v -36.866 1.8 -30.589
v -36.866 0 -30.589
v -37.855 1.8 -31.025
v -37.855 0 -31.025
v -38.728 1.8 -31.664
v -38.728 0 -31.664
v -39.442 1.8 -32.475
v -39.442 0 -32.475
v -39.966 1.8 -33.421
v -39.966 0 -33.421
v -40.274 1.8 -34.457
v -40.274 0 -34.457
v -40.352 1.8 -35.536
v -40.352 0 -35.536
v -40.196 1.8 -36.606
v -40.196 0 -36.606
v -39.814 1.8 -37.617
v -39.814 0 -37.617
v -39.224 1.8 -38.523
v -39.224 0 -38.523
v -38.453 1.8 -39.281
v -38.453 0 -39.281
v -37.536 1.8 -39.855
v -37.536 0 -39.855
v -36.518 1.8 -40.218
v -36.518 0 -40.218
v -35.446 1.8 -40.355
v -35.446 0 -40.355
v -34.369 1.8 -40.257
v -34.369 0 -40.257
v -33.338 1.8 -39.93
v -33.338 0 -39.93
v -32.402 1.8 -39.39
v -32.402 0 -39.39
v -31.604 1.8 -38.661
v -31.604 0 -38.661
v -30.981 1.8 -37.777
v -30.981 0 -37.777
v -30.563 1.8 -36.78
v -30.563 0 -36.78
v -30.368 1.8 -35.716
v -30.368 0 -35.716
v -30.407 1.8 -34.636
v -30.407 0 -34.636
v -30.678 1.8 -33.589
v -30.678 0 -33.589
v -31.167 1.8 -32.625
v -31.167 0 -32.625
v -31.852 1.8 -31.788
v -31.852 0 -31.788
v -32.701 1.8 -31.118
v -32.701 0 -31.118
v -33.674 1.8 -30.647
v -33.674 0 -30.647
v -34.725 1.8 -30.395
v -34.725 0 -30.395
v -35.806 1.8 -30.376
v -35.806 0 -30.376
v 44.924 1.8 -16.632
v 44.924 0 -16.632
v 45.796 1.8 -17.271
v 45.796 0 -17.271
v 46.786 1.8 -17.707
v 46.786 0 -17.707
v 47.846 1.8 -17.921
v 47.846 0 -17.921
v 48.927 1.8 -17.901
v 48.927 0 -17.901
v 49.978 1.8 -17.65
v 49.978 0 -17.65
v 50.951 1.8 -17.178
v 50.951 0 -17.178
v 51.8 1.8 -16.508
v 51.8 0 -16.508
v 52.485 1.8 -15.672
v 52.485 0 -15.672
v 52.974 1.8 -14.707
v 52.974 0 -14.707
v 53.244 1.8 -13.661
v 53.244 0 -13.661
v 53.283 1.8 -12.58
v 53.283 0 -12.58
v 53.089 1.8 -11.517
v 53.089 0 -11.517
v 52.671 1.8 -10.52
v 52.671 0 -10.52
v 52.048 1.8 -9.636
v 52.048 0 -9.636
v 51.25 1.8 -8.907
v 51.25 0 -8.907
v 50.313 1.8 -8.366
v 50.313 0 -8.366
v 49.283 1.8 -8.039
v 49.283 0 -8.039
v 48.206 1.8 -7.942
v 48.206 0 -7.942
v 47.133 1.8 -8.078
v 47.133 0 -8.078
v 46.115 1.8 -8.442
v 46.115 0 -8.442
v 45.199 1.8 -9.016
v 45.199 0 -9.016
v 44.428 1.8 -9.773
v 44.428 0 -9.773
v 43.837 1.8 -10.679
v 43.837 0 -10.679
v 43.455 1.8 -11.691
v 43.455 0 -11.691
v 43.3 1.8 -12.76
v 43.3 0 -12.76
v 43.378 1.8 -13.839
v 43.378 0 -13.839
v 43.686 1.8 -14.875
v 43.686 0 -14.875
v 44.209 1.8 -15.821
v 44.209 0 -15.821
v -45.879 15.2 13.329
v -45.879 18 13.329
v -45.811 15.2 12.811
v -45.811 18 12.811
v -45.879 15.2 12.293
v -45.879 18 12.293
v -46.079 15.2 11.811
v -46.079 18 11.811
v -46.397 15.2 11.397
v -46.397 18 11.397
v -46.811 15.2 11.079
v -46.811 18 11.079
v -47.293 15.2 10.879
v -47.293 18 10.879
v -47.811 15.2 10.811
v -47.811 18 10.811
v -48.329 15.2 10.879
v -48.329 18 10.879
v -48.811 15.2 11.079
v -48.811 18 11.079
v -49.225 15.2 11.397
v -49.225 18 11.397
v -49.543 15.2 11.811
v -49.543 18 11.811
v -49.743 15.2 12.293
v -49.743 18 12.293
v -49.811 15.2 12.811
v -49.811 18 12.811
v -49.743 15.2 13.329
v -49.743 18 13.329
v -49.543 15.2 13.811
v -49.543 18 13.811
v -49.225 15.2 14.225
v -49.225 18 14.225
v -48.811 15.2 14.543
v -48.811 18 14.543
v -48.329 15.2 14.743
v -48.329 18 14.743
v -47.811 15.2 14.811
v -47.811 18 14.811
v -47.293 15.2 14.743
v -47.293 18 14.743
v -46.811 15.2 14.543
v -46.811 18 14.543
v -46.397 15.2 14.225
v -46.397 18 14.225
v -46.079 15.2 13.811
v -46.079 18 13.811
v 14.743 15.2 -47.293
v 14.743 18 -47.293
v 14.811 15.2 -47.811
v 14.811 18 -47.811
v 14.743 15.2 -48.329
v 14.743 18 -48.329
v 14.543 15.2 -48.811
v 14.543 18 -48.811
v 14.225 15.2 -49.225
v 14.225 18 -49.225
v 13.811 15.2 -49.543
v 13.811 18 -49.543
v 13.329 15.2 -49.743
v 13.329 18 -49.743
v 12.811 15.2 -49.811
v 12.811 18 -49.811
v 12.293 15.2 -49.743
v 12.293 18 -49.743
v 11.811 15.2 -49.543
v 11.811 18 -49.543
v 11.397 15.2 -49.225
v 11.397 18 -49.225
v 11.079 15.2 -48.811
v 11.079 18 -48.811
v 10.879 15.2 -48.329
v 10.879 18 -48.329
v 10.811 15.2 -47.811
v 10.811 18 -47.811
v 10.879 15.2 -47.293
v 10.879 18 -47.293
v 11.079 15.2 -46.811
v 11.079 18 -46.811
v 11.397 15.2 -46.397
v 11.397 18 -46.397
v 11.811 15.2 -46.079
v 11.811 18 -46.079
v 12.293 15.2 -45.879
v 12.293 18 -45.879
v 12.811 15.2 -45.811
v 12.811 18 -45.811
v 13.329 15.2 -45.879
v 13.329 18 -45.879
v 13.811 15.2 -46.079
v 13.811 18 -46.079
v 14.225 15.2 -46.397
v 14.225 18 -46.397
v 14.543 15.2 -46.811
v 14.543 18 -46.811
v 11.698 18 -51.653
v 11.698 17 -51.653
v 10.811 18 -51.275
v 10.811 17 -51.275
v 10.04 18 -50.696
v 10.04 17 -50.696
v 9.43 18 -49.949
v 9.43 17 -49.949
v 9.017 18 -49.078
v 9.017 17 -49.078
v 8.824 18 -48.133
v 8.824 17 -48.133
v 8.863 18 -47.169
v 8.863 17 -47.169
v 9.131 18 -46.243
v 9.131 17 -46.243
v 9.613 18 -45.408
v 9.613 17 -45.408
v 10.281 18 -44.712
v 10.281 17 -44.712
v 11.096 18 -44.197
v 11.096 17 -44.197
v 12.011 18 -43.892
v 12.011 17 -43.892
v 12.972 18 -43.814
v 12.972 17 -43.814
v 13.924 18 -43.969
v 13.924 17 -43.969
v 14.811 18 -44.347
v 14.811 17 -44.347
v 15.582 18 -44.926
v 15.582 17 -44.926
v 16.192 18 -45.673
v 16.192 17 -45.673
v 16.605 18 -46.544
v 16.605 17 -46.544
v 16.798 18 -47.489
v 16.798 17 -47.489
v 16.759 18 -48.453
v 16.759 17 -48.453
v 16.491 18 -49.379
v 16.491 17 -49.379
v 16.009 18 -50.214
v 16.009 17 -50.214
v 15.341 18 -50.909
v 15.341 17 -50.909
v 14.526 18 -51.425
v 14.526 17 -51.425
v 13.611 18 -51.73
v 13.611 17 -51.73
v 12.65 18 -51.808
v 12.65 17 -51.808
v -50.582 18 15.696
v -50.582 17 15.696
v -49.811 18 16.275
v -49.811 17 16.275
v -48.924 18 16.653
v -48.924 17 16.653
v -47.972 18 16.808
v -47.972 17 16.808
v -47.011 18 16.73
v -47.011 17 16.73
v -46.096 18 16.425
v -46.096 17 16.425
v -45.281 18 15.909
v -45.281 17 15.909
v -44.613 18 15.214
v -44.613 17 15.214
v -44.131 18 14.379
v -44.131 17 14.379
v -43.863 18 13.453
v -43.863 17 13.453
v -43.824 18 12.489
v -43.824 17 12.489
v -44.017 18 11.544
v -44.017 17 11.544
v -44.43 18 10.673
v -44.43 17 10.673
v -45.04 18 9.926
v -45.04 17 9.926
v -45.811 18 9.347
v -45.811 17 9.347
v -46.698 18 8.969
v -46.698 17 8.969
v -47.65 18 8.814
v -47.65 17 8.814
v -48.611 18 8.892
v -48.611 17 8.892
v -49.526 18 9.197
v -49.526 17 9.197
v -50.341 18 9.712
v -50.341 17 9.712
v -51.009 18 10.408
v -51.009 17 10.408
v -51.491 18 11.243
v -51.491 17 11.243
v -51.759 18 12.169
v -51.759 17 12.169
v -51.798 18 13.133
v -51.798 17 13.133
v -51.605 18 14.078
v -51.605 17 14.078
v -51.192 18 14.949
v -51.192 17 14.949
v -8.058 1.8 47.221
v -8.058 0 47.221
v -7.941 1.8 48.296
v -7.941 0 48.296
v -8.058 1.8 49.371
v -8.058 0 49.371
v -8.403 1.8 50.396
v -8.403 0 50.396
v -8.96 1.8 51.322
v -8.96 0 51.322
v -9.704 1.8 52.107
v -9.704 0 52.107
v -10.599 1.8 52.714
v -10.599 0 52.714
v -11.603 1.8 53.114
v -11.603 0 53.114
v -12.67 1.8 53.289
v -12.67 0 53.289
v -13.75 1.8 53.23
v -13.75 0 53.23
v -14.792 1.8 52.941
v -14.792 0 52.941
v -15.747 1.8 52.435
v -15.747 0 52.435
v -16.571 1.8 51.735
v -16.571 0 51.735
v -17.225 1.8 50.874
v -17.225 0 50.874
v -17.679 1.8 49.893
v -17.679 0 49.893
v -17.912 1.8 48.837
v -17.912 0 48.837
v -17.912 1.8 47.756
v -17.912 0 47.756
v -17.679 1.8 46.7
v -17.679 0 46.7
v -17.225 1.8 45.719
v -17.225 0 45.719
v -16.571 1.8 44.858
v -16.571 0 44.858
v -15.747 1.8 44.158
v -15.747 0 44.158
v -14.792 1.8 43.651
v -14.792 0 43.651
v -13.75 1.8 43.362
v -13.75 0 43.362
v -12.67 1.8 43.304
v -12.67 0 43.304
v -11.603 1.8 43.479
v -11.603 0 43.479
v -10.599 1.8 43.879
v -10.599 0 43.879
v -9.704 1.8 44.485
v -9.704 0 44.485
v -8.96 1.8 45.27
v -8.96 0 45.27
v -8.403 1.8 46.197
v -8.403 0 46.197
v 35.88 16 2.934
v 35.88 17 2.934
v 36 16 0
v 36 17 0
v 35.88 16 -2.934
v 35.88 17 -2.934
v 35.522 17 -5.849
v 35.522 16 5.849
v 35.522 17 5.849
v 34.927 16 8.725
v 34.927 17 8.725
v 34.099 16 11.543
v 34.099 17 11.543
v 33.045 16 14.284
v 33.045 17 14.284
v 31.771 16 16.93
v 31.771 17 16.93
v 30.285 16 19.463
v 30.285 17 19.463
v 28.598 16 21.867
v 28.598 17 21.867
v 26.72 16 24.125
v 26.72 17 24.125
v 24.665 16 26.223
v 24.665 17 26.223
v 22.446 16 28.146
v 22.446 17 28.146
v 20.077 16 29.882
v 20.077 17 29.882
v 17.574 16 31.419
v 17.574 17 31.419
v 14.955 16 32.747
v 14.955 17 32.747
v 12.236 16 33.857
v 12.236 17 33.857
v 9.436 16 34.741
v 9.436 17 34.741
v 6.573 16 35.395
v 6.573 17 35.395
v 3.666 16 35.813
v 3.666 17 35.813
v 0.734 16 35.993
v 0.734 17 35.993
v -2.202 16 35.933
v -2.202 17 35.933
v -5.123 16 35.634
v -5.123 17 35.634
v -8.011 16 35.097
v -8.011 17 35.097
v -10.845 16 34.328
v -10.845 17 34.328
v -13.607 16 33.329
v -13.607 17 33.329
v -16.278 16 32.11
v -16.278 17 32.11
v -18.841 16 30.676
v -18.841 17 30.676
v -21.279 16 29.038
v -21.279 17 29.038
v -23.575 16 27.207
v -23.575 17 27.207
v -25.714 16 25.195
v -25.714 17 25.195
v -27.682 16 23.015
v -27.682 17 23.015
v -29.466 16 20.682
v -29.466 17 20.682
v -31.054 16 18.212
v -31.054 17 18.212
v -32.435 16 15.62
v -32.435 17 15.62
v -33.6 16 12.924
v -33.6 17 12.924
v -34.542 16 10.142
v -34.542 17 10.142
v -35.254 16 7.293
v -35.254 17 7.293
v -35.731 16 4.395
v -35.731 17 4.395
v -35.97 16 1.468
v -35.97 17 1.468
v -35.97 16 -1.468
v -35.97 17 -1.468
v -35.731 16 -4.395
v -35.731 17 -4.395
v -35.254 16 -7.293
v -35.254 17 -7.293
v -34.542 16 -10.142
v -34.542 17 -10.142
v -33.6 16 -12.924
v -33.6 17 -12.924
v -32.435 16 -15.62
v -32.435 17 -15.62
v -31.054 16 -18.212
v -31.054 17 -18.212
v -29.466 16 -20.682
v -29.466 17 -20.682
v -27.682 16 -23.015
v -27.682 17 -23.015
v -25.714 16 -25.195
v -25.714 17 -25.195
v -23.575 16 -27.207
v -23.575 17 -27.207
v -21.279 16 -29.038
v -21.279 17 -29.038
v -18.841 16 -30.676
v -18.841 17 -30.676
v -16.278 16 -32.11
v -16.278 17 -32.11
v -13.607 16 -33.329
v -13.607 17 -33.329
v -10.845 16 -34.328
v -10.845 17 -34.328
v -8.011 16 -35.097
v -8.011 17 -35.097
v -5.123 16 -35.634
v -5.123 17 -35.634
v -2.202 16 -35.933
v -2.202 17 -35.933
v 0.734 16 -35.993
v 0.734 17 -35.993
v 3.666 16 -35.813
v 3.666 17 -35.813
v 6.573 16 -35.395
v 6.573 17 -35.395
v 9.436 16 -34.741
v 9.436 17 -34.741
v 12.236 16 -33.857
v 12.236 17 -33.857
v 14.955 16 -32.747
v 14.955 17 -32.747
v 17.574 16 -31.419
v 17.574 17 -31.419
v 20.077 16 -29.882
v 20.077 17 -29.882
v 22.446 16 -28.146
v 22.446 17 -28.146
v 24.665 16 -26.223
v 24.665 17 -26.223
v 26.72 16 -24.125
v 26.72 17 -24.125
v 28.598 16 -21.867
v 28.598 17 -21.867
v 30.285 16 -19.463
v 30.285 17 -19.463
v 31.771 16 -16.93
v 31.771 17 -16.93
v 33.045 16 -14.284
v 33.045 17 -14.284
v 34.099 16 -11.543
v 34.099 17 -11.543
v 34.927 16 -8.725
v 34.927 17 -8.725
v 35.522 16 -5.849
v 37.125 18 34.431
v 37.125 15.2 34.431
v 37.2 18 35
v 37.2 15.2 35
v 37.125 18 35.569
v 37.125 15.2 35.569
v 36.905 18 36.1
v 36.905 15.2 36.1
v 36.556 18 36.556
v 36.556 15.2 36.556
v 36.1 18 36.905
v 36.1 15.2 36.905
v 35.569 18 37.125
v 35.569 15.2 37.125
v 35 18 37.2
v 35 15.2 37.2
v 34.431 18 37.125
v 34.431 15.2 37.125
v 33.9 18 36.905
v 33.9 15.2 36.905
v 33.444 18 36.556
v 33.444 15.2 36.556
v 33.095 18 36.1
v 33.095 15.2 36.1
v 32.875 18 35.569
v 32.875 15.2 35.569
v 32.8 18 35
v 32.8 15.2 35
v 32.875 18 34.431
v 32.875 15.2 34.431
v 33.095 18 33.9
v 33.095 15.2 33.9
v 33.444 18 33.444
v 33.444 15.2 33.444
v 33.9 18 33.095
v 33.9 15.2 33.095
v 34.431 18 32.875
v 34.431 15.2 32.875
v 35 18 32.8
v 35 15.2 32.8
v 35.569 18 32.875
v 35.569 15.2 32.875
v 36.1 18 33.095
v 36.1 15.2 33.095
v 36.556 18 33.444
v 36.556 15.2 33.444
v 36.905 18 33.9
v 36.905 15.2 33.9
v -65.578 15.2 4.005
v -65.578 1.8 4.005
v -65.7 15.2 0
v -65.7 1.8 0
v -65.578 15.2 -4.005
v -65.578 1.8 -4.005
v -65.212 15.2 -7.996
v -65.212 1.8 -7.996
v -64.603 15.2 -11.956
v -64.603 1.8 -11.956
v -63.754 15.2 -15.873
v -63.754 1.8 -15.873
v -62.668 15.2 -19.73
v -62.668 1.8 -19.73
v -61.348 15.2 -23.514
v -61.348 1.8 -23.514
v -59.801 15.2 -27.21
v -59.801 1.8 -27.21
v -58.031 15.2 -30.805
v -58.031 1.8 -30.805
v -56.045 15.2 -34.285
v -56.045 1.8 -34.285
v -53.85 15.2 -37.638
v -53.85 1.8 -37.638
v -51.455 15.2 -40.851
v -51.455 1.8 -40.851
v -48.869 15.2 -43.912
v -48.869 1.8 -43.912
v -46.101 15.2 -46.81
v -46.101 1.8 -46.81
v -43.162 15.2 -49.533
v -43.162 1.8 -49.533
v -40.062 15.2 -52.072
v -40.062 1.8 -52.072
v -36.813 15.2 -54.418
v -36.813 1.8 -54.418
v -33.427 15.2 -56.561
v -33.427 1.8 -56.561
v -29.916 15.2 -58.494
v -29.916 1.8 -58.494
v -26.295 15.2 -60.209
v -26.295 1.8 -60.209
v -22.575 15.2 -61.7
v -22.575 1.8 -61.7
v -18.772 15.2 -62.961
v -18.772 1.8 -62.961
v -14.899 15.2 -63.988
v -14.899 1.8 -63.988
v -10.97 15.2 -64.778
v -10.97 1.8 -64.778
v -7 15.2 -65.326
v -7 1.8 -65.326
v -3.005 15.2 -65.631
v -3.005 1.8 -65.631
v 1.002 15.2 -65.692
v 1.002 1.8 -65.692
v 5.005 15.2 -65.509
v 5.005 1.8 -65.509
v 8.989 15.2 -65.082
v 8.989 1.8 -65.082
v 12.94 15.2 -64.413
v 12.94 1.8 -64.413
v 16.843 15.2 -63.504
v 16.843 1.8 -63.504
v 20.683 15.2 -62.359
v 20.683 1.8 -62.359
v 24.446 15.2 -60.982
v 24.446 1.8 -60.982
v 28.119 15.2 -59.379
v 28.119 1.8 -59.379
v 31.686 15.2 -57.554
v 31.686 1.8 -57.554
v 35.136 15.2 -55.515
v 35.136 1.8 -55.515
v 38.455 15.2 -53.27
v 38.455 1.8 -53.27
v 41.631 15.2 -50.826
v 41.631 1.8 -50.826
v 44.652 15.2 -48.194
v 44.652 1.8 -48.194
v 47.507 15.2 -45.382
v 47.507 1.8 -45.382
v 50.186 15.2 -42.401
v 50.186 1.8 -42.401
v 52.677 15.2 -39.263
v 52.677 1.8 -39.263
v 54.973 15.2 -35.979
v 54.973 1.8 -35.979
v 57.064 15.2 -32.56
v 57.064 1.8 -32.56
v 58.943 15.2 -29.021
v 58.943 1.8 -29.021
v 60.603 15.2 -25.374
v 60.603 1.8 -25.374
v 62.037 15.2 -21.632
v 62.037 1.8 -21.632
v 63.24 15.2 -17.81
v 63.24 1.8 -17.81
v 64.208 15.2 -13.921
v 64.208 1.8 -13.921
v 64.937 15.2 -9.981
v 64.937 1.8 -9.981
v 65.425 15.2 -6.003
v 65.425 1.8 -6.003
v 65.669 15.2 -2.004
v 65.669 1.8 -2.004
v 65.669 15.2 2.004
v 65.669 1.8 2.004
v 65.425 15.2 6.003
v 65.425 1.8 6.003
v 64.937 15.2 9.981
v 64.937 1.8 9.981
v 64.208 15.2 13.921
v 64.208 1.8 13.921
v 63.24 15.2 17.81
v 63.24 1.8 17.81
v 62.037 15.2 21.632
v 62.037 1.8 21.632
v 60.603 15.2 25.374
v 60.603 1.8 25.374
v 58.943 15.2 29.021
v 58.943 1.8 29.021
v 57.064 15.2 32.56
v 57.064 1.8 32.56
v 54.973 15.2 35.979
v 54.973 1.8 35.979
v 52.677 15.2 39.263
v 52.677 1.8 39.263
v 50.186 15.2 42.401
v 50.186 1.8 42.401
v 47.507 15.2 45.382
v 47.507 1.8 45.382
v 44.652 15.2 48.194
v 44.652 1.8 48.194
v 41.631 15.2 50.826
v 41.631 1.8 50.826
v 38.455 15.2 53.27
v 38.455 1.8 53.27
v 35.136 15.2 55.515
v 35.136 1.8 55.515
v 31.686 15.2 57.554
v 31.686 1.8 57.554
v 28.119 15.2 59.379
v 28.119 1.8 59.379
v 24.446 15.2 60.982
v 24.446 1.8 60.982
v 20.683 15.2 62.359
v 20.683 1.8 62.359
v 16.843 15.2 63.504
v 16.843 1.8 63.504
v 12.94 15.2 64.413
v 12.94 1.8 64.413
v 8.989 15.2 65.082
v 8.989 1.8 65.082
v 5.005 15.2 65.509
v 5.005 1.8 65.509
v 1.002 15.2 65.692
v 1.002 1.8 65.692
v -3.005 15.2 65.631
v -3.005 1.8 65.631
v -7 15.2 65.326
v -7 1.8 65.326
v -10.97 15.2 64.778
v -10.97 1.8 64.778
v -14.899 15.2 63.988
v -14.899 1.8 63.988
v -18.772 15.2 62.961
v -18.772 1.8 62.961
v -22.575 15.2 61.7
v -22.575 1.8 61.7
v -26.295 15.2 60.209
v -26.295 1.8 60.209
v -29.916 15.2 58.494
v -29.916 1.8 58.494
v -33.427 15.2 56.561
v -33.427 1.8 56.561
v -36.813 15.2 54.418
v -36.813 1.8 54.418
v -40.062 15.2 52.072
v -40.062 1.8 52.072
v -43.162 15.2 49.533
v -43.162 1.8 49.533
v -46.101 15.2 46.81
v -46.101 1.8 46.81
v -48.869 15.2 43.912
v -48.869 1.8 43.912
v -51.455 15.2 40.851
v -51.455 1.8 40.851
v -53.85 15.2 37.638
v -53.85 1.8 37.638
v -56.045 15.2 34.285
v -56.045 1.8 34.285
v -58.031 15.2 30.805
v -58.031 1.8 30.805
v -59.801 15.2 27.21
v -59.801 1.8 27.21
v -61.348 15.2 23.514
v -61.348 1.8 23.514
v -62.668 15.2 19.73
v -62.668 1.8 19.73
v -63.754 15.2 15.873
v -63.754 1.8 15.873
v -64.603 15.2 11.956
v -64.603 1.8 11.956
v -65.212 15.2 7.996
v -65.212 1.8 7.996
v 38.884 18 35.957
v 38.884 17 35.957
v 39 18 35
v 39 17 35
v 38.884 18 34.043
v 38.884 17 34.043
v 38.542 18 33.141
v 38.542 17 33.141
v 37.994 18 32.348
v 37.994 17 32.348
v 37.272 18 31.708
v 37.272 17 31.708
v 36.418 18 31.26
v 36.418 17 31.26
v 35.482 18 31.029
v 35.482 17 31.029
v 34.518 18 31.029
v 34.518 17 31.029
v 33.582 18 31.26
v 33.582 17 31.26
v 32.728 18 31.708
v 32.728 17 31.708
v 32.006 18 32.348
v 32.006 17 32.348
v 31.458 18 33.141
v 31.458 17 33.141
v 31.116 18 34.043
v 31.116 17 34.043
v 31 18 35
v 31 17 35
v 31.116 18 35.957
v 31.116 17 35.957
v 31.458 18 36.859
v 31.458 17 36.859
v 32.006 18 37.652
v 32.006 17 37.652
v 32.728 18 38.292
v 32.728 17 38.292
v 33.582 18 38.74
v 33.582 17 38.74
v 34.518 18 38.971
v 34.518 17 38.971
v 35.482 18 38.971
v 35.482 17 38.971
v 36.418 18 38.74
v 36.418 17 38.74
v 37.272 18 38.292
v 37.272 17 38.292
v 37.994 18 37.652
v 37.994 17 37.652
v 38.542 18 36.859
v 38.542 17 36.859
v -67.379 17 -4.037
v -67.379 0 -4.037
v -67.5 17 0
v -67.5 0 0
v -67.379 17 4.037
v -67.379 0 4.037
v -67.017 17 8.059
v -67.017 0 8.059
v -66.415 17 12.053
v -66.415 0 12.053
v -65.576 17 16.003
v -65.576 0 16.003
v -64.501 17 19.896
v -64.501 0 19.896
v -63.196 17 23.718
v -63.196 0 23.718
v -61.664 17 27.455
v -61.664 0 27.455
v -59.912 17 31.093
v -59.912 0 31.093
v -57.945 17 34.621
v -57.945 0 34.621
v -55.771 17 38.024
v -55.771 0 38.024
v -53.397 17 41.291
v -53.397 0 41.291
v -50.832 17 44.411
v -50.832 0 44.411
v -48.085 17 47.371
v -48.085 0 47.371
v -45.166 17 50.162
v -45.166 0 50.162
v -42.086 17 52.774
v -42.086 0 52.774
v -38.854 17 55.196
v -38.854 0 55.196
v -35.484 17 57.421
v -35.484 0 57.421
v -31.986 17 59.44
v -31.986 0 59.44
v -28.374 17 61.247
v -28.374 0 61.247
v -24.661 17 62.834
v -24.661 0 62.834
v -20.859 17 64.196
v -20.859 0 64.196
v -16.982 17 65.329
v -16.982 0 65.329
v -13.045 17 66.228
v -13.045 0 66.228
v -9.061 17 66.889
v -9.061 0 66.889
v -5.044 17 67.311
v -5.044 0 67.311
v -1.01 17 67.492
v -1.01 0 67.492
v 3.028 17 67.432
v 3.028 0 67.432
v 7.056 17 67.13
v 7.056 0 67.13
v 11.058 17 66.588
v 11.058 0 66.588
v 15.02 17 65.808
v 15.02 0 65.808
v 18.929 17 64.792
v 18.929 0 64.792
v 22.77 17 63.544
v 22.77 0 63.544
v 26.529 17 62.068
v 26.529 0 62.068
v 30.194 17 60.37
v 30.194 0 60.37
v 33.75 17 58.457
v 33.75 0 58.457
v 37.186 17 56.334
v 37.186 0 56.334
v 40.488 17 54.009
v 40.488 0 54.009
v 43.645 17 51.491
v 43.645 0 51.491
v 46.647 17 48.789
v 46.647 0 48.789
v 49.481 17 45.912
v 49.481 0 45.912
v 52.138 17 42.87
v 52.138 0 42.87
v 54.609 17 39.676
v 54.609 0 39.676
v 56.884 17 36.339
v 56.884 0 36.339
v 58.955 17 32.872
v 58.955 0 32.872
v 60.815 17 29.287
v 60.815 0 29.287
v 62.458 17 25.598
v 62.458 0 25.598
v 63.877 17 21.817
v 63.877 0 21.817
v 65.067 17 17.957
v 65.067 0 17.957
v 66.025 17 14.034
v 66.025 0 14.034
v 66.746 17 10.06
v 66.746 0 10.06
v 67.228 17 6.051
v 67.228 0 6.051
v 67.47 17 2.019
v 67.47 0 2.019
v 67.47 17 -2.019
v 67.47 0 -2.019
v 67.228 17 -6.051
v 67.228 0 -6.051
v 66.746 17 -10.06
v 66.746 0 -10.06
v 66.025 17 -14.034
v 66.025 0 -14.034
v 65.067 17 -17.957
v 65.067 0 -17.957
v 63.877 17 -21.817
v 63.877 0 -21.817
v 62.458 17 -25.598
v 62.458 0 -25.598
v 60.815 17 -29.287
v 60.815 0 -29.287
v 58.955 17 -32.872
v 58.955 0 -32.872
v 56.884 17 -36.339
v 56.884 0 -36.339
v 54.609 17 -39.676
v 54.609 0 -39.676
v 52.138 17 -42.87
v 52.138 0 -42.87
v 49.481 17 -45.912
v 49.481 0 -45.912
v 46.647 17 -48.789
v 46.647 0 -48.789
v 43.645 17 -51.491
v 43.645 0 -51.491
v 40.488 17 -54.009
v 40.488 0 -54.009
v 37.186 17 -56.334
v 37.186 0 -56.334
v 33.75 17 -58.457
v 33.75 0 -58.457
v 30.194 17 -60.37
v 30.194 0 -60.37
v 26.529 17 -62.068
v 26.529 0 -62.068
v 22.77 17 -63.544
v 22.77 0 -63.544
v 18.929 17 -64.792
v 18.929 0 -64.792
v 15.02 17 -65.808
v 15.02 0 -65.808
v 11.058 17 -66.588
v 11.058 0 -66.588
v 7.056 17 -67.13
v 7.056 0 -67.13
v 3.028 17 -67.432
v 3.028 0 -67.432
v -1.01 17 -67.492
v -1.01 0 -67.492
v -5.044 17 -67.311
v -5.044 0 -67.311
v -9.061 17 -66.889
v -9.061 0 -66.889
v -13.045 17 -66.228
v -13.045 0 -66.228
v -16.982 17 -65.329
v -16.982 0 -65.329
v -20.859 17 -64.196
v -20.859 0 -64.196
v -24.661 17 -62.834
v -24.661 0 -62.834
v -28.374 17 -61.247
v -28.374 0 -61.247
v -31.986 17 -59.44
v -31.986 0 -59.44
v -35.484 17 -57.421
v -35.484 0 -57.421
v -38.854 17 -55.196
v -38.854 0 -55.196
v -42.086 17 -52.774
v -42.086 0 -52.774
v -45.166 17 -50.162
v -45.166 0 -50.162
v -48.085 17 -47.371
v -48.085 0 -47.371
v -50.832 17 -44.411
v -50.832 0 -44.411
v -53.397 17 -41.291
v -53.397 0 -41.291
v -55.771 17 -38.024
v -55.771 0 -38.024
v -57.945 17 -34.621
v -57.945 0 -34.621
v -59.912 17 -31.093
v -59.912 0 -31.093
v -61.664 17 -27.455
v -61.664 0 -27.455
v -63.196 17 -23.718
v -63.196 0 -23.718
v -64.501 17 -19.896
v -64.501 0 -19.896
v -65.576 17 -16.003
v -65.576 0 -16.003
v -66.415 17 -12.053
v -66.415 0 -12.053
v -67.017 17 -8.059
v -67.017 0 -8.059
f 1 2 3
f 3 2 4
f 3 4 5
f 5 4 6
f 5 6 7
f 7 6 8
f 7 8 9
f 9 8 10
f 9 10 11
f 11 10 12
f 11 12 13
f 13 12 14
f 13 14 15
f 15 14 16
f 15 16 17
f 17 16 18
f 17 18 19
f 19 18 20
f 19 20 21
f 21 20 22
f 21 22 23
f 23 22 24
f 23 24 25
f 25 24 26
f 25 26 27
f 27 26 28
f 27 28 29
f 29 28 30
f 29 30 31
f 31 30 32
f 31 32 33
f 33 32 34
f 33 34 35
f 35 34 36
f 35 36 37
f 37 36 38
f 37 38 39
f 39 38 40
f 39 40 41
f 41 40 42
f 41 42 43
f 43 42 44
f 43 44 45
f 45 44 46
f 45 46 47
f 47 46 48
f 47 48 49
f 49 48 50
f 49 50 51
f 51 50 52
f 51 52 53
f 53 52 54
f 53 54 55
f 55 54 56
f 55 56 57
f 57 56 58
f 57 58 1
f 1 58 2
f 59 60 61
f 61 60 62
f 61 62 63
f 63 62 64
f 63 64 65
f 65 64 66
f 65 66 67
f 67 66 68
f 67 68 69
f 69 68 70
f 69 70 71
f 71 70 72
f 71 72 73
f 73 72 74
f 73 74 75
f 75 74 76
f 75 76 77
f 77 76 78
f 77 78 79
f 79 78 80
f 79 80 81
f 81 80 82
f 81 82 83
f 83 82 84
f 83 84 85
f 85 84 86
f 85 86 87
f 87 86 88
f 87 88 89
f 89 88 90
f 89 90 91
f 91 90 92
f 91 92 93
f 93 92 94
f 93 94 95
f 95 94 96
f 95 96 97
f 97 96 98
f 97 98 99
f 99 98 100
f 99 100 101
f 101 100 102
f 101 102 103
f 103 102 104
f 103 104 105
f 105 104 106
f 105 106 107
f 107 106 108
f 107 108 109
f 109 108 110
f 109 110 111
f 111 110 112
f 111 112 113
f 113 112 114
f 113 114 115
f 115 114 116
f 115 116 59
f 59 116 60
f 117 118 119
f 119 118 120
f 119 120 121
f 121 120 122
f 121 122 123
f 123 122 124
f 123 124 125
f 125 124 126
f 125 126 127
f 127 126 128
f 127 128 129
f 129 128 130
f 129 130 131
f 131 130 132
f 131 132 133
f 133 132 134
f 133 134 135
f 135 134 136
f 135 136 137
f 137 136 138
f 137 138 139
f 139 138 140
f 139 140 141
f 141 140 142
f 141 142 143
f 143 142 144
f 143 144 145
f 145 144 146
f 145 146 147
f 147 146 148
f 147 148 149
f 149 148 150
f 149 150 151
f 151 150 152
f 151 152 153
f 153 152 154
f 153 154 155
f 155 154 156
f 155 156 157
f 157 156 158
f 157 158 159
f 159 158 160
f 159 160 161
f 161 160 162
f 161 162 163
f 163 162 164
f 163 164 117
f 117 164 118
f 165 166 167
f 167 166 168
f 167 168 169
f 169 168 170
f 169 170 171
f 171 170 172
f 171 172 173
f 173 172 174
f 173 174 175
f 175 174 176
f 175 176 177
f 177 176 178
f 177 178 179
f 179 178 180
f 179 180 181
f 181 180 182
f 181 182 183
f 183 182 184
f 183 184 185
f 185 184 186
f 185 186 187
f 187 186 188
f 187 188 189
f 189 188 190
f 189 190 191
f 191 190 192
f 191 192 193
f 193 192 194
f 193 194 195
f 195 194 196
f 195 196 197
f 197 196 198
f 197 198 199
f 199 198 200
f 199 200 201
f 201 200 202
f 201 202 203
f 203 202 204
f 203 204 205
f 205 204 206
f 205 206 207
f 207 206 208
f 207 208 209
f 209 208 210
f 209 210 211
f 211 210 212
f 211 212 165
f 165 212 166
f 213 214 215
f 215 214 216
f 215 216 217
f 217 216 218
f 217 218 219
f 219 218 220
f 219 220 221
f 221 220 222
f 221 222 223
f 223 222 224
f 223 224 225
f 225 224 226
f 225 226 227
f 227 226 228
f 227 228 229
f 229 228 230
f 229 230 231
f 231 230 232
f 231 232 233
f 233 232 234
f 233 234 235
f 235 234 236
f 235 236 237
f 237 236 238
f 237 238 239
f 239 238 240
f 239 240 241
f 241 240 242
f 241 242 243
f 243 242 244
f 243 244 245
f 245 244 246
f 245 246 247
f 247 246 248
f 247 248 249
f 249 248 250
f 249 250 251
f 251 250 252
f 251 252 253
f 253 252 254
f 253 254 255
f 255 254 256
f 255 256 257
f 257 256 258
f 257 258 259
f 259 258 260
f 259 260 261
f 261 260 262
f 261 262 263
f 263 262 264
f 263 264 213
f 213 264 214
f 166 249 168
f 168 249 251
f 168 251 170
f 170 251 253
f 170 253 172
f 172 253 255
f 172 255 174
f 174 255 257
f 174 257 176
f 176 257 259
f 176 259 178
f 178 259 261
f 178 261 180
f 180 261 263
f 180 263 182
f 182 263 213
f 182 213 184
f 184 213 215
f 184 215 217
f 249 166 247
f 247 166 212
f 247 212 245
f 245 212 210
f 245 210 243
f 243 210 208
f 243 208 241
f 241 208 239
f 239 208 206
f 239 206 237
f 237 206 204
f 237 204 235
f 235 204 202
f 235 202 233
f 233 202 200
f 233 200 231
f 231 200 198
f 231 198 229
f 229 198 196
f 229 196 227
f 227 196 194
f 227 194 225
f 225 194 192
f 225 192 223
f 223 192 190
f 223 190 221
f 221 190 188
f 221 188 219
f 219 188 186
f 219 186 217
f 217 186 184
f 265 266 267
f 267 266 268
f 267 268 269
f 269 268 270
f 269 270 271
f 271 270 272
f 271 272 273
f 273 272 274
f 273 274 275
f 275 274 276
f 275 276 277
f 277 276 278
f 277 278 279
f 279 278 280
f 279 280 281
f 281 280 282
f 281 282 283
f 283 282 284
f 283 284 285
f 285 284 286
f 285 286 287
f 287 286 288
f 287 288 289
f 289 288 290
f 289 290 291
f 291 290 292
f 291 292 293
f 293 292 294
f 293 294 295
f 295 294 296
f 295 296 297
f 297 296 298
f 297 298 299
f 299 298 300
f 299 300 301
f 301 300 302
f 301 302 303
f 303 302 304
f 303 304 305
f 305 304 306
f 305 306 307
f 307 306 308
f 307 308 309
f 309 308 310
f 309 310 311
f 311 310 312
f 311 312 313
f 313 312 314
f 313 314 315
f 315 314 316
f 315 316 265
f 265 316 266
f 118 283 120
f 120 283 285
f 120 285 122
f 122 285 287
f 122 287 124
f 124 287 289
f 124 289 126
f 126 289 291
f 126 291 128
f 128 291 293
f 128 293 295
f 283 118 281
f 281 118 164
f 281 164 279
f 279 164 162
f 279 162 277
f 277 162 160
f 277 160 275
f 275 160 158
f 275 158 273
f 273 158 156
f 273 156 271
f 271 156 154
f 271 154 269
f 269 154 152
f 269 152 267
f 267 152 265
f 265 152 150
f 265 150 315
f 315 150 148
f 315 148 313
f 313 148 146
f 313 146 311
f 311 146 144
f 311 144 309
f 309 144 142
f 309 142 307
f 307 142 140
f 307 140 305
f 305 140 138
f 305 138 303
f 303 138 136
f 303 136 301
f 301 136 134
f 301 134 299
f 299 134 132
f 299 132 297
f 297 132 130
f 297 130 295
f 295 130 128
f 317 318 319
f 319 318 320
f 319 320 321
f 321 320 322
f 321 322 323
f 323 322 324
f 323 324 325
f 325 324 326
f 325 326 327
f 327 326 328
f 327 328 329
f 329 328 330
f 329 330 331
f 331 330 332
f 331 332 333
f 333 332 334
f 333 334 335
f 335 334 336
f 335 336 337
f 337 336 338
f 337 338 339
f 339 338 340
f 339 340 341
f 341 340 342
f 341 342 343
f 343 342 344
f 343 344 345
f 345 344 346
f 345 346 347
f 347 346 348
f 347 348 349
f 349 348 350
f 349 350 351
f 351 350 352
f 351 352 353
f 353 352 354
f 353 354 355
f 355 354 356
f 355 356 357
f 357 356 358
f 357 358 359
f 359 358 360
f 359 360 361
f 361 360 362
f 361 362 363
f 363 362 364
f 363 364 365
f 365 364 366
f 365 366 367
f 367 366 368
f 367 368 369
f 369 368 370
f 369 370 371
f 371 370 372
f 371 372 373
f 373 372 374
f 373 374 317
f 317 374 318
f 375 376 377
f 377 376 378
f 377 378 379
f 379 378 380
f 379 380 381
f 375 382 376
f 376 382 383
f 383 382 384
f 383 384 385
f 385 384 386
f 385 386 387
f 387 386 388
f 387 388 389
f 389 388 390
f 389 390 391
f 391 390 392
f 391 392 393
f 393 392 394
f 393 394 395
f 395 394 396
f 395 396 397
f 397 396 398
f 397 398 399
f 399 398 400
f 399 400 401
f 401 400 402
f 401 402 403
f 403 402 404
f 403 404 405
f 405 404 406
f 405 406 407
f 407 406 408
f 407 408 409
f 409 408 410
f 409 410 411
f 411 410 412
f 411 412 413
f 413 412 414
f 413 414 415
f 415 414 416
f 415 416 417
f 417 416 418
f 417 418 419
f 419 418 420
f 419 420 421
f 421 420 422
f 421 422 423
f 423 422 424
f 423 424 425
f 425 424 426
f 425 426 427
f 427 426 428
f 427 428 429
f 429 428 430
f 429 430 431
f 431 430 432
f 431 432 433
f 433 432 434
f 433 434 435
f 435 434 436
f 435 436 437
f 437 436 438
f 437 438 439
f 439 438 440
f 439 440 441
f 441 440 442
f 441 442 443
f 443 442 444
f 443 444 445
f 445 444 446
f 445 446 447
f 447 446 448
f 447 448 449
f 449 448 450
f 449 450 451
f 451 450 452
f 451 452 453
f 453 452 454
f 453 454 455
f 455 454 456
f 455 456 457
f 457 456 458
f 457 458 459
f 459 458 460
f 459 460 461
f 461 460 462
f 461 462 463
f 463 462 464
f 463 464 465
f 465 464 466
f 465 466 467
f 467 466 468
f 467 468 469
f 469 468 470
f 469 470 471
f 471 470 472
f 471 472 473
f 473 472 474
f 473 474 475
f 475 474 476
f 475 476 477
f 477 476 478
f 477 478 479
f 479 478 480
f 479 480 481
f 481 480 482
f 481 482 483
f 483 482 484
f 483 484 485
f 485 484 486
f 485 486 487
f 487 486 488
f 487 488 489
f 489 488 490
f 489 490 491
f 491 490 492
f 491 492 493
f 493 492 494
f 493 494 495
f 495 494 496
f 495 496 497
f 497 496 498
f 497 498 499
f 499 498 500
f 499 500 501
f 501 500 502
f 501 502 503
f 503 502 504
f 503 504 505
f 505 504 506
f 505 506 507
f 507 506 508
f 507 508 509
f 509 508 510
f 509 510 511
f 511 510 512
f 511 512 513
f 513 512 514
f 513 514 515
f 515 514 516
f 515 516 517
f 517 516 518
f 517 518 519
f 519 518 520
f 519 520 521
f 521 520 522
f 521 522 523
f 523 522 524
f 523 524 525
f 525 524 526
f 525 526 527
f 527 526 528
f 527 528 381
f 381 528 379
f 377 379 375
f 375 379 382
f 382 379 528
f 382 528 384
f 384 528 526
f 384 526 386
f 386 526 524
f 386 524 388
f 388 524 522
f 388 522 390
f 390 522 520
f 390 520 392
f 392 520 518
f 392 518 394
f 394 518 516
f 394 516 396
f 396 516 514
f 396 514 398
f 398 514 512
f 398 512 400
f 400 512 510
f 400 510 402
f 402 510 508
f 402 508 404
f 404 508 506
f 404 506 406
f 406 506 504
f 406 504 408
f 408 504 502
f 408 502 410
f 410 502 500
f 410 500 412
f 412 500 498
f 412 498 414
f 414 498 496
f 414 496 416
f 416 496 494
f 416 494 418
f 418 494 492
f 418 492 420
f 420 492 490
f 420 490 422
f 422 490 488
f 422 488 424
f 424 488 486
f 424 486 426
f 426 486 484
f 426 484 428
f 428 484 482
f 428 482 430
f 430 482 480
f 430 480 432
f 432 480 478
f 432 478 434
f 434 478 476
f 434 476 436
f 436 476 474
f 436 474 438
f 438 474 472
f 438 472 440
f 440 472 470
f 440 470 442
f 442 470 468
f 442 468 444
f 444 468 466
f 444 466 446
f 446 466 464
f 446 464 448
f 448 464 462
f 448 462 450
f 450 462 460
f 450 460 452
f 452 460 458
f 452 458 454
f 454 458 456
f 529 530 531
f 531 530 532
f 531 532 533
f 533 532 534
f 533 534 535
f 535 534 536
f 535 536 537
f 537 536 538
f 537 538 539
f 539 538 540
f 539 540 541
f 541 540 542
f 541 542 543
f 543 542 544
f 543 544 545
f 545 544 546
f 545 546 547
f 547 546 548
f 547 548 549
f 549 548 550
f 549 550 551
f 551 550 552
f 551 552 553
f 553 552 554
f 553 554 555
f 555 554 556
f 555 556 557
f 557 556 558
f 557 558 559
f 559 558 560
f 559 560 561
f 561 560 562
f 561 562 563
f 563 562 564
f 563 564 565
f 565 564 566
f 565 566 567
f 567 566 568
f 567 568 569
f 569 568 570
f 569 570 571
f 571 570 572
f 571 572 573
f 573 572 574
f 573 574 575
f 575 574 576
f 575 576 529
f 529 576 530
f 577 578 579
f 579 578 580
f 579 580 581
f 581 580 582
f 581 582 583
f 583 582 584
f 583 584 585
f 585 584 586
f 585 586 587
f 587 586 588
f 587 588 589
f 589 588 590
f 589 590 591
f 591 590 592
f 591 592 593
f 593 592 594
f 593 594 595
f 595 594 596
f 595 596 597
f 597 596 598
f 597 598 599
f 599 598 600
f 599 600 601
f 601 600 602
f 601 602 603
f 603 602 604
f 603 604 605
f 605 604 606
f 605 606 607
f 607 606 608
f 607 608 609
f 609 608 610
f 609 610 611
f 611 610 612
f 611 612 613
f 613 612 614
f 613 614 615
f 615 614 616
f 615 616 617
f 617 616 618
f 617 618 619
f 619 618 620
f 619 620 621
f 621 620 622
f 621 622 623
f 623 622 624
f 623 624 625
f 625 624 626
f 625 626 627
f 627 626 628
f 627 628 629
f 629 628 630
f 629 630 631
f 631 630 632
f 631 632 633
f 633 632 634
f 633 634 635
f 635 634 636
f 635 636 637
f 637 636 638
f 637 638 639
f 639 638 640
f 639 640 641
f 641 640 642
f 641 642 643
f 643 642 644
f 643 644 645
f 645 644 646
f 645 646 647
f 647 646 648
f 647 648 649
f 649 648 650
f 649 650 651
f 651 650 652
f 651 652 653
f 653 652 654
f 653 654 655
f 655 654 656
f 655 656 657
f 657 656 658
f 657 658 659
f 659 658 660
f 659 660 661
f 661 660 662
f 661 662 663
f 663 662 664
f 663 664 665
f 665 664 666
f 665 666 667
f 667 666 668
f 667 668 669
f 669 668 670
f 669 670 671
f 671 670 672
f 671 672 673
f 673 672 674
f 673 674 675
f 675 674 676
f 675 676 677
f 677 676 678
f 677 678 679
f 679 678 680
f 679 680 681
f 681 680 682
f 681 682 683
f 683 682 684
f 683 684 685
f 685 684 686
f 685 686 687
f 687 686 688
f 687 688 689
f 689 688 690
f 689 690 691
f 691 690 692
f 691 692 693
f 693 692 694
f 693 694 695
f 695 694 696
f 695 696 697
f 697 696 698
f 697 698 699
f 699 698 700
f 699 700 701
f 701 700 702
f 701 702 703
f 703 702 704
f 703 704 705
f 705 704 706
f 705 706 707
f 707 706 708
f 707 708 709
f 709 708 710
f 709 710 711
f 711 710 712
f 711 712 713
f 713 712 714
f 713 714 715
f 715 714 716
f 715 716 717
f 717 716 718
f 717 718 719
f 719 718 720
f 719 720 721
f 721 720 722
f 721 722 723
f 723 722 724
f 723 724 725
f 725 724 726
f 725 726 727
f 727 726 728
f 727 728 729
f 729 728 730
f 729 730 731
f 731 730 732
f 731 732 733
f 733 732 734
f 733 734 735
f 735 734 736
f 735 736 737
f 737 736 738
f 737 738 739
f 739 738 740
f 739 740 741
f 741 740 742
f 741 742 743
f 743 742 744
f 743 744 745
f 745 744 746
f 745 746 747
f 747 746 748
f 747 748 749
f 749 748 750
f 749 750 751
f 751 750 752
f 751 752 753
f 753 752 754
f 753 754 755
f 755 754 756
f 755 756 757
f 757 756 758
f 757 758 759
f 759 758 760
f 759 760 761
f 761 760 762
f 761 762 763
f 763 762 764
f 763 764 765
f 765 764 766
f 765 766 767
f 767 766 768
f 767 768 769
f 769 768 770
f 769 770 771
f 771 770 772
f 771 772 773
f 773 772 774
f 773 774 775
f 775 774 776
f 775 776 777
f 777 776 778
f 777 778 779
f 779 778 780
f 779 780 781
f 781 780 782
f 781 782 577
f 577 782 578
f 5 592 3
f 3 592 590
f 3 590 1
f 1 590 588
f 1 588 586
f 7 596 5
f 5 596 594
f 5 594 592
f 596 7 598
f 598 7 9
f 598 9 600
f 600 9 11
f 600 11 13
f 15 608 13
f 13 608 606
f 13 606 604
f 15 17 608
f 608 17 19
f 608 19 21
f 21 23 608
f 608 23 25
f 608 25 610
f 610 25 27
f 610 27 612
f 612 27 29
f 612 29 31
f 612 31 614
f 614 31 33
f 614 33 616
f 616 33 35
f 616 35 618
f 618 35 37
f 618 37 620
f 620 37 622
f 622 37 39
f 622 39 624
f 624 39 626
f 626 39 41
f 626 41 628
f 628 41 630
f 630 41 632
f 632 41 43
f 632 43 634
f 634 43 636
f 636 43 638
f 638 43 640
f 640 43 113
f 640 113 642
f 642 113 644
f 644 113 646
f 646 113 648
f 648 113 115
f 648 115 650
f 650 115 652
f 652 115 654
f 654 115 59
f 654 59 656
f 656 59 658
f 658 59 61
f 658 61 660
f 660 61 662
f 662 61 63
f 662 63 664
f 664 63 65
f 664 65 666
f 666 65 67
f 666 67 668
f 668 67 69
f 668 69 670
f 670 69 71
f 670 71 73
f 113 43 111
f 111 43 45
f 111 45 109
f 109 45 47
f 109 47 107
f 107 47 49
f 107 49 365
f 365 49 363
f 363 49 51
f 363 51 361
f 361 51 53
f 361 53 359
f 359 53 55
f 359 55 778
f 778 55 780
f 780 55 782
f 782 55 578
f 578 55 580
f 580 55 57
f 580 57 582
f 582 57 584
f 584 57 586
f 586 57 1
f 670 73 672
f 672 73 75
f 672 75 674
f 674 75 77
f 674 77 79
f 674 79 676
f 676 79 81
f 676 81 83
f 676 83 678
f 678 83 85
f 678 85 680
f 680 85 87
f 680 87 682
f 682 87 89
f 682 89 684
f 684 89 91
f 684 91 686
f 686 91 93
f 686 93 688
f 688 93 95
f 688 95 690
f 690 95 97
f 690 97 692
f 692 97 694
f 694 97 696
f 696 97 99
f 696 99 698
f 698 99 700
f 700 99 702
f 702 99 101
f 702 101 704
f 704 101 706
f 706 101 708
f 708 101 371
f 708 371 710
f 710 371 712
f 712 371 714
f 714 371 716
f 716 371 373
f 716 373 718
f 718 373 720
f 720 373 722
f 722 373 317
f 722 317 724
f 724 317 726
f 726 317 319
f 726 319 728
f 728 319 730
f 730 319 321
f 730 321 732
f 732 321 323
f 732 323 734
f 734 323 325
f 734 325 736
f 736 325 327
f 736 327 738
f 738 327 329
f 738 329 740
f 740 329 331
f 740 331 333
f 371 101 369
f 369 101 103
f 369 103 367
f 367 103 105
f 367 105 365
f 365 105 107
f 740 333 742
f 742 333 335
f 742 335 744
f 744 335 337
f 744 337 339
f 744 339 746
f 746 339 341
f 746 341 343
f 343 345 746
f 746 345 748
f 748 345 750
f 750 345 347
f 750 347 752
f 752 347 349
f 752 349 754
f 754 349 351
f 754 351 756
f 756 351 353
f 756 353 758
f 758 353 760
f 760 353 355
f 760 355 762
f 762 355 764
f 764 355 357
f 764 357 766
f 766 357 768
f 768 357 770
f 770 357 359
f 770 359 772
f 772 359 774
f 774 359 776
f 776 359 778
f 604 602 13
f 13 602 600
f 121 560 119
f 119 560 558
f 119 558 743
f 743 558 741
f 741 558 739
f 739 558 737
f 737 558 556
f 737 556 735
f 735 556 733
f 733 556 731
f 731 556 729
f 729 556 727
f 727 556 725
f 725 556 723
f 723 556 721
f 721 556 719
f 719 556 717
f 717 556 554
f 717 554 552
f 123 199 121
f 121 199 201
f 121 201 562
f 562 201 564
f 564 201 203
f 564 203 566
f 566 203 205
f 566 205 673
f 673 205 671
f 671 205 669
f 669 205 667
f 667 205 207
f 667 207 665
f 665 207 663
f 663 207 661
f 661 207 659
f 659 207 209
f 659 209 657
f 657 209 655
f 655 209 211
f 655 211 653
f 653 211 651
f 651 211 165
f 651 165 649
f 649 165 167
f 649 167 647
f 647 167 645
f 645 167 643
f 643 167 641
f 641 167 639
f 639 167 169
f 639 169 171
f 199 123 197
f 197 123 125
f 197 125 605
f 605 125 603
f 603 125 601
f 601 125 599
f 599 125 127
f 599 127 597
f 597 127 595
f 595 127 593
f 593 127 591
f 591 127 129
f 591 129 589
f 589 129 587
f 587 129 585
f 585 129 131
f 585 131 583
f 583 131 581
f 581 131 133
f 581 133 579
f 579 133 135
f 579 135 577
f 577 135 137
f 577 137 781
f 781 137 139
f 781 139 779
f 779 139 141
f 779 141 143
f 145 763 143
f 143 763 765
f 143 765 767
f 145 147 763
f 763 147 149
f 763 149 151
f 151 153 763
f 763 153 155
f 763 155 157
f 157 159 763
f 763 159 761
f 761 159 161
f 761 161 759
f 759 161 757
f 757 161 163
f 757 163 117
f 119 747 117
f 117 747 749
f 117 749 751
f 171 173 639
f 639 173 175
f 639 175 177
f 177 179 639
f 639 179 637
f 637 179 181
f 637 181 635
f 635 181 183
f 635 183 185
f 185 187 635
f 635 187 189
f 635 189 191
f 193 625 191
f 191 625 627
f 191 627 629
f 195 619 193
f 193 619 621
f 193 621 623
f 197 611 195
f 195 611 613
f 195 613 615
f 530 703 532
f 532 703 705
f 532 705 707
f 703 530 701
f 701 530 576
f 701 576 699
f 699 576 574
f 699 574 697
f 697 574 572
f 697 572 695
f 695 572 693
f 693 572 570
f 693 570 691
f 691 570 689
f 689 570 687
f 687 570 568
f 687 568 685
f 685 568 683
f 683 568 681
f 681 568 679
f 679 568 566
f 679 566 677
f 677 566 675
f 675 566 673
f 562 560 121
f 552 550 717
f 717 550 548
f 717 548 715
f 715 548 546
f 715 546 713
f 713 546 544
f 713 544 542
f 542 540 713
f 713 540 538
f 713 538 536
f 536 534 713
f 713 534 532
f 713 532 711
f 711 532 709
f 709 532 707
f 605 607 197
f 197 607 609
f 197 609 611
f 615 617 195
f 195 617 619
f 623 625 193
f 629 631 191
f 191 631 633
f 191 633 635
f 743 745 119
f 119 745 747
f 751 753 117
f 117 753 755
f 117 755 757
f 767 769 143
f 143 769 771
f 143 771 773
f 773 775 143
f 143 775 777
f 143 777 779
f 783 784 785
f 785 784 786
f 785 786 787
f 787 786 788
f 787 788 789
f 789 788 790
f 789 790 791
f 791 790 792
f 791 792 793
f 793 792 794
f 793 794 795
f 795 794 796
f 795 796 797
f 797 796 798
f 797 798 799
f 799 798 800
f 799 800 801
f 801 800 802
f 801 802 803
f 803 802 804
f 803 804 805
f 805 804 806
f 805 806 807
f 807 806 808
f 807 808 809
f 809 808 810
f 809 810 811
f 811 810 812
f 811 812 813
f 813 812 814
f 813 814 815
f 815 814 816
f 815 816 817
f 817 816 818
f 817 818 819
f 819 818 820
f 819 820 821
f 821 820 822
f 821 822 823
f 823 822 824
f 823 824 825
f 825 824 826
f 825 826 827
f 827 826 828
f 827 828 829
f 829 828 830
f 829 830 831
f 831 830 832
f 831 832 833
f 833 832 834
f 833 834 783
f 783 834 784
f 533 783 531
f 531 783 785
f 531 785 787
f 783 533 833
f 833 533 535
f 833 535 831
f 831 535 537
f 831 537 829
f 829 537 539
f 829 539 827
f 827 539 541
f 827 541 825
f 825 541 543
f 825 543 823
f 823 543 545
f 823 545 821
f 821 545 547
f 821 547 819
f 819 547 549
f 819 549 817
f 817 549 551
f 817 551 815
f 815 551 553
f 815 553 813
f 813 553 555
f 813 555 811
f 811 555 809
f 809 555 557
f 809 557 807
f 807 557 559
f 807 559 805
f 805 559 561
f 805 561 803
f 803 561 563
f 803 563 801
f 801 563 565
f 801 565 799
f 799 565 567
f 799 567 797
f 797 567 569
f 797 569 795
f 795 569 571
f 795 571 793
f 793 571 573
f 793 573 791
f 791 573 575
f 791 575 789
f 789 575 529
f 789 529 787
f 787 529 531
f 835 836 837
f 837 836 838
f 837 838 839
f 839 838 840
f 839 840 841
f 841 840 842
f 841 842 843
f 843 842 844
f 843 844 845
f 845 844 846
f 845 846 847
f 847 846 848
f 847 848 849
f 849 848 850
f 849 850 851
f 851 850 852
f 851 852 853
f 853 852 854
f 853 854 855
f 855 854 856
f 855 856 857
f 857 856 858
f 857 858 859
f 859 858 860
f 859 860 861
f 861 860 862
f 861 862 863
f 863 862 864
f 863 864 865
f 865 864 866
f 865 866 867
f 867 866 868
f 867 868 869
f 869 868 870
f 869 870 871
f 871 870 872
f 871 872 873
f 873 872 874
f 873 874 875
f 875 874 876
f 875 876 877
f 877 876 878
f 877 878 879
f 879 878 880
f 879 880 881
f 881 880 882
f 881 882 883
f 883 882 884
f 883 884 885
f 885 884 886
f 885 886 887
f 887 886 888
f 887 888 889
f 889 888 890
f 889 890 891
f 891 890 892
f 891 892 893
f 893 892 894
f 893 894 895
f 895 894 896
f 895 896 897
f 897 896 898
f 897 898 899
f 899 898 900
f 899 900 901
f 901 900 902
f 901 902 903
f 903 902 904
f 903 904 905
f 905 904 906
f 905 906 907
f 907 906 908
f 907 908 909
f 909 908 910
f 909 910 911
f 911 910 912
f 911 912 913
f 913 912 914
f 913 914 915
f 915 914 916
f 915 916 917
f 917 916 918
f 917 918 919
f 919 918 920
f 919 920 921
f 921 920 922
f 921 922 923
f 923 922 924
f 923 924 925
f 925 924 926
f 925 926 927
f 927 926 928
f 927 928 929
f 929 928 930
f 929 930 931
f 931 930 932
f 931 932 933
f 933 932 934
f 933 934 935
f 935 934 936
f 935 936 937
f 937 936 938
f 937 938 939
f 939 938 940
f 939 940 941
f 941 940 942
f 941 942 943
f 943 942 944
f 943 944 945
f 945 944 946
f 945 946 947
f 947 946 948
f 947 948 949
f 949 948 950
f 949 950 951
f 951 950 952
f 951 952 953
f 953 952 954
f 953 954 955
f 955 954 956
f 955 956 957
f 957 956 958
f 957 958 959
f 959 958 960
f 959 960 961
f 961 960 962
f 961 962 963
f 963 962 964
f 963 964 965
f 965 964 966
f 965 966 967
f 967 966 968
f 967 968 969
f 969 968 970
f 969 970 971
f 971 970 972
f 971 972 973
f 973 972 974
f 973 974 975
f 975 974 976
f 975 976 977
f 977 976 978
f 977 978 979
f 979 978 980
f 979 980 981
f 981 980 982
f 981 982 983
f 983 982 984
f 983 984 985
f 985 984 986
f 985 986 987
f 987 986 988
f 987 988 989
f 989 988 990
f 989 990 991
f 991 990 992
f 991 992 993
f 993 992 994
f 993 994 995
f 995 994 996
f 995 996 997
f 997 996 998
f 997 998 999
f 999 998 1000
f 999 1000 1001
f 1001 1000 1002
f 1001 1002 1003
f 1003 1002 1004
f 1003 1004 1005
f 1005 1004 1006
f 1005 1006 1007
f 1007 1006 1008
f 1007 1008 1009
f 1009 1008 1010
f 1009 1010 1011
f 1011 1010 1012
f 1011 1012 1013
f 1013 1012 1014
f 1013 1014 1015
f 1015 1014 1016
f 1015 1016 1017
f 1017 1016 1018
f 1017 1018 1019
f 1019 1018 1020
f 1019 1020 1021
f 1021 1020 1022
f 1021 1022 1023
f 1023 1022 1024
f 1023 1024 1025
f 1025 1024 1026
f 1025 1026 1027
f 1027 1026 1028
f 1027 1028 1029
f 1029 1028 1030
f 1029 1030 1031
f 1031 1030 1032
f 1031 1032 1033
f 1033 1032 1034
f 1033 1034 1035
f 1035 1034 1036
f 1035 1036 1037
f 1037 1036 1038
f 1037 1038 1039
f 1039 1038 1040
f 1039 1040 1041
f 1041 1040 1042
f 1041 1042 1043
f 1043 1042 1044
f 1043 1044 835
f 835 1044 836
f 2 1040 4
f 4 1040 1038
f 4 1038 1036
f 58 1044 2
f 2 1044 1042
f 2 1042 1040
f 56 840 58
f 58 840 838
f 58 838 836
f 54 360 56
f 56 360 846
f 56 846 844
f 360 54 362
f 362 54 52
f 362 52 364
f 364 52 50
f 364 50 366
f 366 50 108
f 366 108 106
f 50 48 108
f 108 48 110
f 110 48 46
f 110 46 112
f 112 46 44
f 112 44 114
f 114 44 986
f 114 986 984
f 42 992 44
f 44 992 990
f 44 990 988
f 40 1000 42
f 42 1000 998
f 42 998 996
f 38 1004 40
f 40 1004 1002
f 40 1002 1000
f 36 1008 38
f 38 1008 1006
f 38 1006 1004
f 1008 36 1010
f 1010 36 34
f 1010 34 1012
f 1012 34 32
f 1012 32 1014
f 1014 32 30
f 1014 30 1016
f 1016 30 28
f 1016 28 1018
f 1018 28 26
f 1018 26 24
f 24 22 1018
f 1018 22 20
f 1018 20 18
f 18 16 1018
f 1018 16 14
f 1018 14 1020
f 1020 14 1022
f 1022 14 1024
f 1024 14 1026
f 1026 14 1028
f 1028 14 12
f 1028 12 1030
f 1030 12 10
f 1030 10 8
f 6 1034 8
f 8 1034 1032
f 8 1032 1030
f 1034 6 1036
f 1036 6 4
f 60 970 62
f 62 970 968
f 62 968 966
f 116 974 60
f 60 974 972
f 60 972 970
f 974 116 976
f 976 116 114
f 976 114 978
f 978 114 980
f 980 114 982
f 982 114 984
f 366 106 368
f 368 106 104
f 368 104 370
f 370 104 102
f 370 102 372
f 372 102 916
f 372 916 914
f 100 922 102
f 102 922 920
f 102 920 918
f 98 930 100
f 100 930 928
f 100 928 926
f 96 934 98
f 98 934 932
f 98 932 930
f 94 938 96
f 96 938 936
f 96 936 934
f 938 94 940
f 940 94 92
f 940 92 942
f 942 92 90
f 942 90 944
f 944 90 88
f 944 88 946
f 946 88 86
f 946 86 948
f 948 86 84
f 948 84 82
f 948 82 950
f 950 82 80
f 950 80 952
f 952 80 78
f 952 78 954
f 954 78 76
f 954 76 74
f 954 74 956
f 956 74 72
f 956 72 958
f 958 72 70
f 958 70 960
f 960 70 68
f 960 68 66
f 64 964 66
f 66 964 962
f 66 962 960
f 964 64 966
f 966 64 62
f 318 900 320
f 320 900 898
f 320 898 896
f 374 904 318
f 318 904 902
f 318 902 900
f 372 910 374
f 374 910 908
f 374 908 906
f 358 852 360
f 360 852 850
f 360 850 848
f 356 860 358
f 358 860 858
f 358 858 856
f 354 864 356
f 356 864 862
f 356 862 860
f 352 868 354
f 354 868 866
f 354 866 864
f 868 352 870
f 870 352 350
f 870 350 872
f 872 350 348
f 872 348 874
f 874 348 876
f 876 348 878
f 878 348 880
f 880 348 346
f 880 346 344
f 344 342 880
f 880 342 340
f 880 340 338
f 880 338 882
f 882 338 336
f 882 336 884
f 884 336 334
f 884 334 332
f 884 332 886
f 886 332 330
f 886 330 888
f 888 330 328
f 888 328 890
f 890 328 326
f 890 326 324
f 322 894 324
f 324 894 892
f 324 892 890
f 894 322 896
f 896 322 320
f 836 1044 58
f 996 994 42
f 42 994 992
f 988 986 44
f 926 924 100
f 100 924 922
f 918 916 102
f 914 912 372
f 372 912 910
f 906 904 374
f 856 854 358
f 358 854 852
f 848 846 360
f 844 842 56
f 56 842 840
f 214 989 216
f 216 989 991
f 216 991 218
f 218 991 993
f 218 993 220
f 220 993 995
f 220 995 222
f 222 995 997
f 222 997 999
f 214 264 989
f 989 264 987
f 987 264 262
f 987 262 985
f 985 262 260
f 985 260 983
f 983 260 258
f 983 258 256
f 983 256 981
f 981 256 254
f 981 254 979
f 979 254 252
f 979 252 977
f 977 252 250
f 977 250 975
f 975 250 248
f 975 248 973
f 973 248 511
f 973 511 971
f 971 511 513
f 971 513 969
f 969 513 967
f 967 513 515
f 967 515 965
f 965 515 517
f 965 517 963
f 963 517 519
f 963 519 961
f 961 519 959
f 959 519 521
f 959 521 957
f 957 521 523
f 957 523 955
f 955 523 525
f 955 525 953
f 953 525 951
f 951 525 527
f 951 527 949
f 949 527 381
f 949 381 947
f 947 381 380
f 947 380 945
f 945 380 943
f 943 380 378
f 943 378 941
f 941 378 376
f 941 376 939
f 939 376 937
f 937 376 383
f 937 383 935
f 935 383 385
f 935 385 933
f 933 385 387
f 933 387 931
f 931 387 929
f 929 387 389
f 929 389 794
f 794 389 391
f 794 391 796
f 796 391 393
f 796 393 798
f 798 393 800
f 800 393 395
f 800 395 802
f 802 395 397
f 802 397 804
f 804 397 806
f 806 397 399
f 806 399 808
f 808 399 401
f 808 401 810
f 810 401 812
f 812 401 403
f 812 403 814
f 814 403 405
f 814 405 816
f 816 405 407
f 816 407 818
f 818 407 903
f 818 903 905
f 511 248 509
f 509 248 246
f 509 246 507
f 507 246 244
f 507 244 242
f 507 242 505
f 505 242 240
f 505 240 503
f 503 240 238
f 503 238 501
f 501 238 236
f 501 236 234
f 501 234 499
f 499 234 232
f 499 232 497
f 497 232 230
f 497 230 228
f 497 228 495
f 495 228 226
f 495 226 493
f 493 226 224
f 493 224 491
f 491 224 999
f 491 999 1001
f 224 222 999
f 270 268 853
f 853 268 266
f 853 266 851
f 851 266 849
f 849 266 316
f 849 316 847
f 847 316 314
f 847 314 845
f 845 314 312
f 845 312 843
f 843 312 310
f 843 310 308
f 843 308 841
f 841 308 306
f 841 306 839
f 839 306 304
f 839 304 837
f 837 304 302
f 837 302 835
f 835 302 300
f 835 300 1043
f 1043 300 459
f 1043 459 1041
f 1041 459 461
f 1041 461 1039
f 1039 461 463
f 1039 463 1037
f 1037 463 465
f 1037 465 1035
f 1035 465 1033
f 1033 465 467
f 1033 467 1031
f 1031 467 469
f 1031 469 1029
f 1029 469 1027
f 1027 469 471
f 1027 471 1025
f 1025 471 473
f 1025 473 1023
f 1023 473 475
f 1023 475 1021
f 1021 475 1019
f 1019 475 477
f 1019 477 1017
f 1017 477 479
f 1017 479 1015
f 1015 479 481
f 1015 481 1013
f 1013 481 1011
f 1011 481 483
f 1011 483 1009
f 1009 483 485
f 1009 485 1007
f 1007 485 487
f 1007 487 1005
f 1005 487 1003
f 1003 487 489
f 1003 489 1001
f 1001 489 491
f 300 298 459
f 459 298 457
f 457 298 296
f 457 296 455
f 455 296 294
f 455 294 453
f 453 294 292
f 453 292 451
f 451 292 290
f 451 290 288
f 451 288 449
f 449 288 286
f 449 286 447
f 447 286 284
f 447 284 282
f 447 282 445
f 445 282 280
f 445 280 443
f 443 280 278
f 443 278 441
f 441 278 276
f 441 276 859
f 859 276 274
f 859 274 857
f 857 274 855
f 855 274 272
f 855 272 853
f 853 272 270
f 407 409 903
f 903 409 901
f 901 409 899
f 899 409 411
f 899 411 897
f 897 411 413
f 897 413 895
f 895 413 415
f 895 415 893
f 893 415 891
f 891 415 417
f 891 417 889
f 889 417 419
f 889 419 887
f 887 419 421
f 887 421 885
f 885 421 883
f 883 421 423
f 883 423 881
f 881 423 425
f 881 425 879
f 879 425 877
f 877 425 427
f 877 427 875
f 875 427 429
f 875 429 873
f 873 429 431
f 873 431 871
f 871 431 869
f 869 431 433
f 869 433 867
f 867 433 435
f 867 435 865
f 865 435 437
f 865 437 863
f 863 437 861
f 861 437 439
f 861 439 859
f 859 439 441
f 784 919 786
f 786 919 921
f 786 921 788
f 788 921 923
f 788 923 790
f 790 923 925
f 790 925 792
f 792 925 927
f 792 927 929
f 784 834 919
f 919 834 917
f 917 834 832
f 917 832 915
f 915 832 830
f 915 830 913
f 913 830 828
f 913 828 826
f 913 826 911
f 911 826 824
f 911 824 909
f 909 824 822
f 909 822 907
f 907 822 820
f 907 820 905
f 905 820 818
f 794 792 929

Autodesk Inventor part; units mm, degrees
ref_plane "YZ Plane" through (0, 0, 0) normal (1, 0, 0) x (0, 1, 0)
ref_plane "XZ Plane" through (0, 0, 0) normal (0, 1, 0) x (-1, 0, 0)
ref_plane "XY Plane" through (0, 0, 0) normal (0, 0, 1) x (1, 0, 0)
sketch "草图1" plane through (0, 0, 0) normal (0, 1, 0) x (-1, 0, 0)
  circle A0 centre (0, 0) radius 67.5
  dimension "d0" = 135
extrude "拉伸1" add sketch "草图1" along normal blind 17
sketch "草图3" plane through (0, 17, 0) normal (0, 1, 0) x (1, 0, 0)
  circle A0 centre (35, -35) radius 4
  point P0 (0, 0)
  dimension "d8" = 8
  dimension "d9" = 35
  dimension "d10" = 35
extrude "拉伸3" add sketch "草图3" along normal blind 1
shell "抽壳1" thickness 1.8 removed faces 1 at (33.7054, 18, 35.3191)
sketch "草图6" plane through (0, 17, 0) normal (0, 1, 0) x (1, 0, 0)
  circle A0 centre (0, 0) radius 36
  dimension "d17" = 72
extrude "拉伸5" cut sketch "草图6" against normal blind 1
sketch "草图7" plane through (0, 0, 0) normal (0, -1, 0) x (1, 0, 0)
  circle A0 centre (-12.941, 48.2963) radius 5
  line L0 (0, 0) -> (-12.941, 48.2963)
  line L1 (-94.5, 0) -> (94.5, 0) projected
  circle A1 centre (35, 35) radius 2.2 projected
  line L2 (0, 0) -> (35, 35)
  dimension "d25" = 10
  dimension "d26" = 50
  dimension "d42" = 60
extrude "拉伸6" cut sketch "草图7" against normal blind 2 contours A0
pattern_circular "环形阵列1" count 3 over 360 about axis through (0, 17, 0) along (0, -1, 0) of "拉伸3"
sketch "草图8" plane through (12.8109, 18, -47.8109) normal (0, 1, 0) x (1, 0, 0)
  circle A0 centre (0, 0) radius 2
  point P0 (-12.8109, -47.8109)
  dimension "d32" = 4
extrude "拉伸7" cut sketch "草图8" against normal blind 3
sketch "草图9" plane through (-47.8109, 18, 12.8109) normal (0, 1, 0) x (1, 0, 0)
  circle A0 centre (0, 0) radius 2
  point P0 (47.8109, 12.8109)
  dimension "d35" = 4
extrude "拉伸8" cut sketch "草图9" against normal blind 3
pattern_circular "环形阵列2" count 3 over 360 about axis through (0, 0, 0) along (0, 1, 0) of "拉伸6"
properties part number "底盘" material "水"
